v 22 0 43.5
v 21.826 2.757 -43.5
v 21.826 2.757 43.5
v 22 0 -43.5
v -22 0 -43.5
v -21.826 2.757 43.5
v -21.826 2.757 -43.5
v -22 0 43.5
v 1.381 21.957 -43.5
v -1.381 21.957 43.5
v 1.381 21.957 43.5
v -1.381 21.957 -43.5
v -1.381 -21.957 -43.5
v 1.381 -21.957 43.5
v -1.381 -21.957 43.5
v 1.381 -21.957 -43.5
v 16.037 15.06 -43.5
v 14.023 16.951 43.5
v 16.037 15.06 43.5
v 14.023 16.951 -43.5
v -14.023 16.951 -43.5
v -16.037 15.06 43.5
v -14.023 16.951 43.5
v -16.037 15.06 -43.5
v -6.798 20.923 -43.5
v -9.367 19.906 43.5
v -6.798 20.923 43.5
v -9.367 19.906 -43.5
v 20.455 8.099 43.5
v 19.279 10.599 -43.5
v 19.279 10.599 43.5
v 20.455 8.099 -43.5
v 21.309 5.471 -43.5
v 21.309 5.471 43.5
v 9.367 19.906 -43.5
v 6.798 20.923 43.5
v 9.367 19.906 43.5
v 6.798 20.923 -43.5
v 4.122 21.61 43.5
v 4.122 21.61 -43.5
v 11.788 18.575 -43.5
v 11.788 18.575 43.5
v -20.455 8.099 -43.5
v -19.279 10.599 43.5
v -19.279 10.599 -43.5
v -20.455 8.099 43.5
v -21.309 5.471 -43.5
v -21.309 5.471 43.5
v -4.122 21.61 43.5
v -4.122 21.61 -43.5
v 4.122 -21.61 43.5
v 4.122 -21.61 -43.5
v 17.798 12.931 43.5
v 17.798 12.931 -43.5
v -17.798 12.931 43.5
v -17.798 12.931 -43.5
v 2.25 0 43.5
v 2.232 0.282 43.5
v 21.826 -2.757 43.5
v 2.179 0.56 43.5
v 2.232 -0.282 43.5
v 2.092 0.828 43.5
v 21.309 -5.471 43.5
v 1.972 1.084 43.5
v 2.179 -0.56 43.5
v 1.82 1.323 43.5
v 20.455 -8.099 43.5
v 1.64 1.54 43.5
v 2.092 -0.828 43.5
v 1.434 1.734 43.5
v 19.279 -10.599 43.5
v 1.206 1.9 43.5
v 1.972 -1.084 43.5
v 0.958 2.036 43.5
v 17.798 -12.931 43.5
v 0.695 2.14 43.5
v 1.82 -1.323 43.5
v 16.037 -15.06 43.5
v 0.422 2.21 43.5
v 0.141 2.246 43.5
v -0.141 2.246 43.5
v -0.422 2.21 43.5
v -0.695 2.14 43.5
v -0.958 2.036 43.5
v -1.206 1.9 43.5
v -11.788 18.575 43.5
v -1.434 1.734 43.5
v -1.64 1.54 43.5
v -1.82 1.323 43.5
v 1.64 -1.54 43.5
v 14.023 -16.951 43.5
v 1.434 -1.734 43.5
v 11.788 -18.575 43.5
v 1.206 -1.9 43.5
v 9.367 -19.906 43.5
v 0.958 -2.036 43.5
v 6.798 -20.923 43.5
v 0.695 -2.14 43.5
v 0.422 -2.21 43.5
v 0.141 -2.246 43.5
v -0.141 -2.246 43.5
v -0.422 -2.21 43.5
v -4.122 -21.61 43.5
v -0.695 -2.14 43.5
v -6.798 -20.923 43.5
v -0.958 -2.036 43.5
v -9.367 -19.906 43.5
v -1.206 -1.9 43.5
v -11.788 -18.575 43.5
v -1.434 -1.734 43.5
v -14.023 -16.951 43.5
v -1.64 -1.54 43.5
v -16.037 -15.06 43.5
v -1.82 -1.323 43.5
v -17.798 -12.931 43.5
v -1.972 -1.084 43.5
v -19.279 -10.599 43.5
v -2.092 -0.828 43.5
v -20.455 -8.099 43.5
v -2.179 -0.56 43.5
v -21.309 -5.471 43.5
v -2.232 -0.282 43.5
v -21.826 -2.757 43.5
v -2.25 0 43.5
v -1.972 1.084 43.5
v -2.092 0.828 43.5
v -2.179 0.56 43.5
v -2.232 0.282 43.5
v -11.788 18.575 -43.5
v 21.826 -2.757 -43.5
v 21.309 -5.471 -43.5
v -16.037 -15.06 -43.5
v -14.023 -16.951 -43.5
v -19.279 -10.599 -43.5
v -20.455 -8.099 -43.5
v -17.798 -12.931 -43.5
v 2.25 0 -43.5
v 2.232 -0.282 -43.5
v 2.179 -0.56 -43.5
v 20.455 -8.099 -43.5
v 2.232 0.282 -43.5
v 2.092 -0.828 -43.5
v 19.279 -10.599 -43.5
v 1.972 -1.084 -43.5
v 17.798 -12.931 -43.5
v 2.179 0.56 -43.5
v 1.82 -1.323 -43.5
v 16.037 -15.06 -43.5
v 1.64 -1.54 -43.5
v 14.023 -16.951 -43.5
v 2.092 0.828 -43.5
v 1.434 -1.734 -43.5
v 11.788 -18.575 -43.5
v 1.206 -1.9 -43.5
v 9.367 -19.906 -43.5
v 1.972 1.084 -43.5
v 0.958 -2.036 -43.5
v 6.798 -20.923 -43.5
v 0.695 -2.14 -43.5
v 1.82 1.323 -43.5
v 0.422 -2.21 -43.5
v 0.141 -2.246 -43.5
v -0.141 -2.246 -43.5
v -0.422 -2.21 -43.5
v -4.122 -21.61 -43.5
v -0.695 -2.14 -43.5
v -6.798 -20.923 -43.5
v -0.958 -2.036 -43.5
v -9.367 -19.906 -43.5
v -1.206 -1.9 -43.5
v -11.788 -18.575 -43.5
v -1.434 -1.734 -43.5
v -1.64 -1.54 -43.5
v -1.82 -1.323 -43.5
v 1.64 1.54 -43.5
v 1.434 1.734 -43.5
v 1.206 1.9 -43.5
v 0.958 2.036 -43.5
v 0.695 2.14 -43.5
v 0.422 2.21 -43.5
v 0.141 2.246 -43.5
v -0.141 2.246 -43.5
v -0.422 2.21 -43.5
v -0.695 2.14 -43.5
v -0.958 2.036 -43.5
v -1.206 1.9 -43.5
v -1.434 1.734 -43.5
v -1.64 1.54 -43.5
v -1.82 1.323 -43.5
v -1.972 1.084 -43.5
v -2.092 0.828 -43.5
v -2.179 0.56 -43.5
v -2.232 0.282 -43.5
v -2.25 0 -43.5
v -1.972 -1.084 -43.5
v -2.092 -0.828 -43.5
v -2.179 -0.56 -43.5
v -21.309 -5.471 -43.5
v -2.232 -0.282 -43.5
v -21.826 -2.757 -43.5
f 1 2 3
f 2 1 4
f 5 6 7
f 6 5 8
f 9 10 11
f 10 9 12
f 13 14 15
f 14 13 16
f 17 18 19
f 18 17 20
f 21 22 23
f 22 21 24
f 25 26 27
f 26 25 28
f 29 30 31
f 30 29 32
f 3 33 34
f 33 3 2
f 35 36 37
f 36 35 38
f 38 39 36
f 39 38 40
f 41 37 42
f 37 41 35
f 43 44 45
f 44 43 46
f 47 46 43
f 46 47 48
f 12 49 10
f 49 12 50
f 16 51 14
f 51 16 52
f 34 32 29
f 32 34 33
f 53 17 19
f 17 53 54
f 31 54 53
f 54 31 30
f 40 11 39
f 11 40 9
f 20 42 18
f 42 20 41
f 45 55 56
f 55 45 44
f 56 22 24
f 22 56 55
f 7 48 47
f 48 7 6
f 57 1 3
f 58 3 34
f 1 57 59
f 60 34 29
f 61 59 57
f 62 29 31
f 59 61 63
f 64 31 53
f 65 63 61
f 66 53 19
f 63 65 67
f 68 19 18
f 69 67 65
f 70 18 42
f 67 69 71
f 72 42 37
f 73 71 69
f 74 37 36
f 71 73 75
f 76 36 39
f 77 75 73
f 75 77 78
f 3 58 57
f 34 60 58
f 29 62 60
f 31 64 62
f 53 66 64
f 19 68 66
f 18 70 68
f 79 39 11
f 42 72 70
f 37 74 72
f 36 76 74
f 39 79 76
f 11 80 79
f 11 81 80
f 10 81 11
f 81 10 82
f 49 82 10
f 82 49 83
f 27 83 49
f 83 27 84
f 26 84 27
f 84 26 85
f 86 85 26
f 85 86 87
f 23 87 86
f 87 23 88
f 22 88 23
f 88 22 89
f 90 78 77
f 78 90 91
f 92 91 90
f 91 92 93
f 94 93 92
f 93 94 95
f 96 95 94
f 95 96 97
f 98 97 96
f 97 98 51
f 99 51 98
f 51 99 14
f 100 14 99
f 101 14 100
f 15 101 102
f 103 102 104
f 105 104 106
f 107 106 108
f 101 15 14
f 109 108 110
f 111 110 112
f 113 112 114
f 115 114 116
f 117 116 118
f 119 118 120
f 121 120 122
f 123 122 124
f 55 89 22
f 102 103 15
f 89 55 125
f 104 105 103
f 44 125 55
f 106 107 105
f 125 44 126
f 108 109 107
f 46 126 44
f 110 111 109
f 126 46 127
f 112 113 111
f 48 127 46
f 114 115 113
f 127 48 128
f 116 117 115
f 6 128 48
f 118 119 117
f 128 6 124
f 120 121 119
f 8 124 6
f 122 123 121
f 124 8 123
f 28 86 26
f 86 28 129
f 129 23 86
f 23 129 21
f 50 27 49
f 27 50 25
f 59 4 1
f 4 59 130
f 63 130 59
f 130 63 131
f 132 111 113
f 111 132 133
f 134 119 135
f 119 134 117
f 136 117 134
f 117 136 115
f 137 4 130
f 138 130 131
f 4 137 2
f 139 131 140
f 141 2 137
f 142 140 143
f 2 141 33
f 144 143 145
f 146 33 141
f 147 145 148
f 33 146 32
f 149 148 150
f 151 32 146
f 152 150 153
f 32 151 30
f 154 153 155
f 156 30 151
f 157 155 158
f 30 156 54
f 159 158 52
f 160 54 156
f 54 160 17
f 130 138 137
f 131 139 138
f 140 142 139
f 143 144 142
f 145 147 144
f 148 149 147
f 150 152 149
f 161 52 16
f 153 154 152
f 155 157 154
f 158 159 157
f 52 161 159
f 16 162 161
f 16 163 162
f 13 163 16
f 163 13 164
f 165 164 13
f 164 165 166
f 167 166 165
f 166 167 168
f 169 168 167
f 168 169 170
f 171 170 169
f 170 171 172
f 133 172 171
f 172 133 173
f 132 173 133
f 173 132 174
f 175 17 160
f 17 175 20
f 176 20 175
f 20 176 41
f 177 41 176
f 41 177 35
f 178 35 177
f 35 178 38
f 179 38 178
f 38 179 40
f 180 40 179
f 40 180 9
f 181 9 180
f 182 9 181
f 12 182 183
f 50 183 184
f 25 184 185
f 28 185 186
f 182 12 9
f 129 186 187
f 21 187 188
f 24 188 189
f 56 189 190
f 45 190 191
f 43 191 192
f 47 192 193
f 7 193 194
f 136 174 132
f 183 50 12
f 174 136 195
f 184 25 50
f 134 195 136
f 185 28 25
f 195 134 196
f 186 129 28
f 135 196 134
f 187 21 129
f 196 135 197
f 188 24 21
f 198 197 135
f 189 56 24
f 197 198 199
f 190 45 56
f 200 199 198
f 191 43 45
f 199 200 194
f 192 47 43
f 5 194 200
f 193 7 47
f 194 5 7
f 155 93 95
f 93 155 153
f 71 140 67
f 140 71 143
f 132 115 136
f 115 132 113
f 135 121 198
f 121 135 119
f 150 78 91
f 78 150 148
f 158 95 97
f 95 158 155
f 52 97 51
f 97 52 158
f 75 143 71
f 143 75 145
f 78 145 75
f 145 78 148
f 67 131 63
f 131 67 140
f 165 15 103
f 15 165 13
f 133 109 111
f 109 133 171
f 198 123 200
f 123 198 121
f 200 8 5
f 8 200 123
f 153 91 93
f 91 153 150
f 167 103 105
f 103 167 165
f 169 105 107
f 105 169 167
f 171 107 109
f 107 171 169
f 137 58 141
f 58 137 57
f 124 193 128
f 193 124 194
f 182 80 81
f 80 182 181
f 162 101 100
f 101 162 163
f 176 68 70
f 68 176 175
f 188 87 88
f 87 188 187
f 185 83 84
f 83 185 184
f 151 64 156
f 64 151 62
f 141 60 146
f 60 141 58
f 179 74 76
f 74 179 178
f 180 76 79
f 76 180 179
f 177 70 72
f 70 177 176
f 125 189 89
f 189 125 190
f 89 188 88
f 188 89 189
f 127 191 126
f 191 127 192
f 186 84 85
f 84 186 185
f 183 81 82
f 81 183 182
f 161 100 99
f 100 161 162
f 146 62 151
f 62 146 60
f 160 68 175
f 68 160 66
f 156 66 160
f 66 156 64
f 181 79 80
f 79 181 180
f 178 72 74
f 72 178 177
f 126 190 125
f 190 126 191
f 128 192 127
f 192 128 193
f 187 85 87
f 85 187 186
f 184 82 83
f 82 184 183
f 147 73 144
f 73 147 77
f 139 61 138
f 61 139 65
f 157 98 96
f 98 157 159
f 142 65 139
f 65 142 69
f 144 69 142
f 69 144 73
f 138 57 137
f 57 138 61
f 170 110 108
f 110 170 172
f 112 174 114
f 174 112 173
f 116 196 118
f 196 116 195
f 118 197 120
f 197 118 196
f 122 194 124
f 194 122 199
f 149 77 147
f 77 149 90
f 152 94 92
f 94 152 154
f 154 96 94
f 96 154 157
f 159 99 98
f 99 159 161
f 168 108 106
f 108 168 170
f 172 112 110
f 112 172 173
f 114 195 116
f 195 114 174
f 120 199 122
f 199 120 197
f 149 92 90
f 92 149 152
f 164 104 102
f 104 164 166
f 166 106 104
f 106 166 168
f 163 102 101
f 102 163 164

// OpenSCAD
$fn = 50;


difference() {
	union() {
		translate(v = [0, 0, -43.5000000000]) {
			cylinder(h = 87, r = 22.0000000000);
		}
	}
	union() {
		translate(v = [0, 0, -100.0000000000]) {
			cylinder(h = 200, r = 2.2500000000);
		}
	}
}
